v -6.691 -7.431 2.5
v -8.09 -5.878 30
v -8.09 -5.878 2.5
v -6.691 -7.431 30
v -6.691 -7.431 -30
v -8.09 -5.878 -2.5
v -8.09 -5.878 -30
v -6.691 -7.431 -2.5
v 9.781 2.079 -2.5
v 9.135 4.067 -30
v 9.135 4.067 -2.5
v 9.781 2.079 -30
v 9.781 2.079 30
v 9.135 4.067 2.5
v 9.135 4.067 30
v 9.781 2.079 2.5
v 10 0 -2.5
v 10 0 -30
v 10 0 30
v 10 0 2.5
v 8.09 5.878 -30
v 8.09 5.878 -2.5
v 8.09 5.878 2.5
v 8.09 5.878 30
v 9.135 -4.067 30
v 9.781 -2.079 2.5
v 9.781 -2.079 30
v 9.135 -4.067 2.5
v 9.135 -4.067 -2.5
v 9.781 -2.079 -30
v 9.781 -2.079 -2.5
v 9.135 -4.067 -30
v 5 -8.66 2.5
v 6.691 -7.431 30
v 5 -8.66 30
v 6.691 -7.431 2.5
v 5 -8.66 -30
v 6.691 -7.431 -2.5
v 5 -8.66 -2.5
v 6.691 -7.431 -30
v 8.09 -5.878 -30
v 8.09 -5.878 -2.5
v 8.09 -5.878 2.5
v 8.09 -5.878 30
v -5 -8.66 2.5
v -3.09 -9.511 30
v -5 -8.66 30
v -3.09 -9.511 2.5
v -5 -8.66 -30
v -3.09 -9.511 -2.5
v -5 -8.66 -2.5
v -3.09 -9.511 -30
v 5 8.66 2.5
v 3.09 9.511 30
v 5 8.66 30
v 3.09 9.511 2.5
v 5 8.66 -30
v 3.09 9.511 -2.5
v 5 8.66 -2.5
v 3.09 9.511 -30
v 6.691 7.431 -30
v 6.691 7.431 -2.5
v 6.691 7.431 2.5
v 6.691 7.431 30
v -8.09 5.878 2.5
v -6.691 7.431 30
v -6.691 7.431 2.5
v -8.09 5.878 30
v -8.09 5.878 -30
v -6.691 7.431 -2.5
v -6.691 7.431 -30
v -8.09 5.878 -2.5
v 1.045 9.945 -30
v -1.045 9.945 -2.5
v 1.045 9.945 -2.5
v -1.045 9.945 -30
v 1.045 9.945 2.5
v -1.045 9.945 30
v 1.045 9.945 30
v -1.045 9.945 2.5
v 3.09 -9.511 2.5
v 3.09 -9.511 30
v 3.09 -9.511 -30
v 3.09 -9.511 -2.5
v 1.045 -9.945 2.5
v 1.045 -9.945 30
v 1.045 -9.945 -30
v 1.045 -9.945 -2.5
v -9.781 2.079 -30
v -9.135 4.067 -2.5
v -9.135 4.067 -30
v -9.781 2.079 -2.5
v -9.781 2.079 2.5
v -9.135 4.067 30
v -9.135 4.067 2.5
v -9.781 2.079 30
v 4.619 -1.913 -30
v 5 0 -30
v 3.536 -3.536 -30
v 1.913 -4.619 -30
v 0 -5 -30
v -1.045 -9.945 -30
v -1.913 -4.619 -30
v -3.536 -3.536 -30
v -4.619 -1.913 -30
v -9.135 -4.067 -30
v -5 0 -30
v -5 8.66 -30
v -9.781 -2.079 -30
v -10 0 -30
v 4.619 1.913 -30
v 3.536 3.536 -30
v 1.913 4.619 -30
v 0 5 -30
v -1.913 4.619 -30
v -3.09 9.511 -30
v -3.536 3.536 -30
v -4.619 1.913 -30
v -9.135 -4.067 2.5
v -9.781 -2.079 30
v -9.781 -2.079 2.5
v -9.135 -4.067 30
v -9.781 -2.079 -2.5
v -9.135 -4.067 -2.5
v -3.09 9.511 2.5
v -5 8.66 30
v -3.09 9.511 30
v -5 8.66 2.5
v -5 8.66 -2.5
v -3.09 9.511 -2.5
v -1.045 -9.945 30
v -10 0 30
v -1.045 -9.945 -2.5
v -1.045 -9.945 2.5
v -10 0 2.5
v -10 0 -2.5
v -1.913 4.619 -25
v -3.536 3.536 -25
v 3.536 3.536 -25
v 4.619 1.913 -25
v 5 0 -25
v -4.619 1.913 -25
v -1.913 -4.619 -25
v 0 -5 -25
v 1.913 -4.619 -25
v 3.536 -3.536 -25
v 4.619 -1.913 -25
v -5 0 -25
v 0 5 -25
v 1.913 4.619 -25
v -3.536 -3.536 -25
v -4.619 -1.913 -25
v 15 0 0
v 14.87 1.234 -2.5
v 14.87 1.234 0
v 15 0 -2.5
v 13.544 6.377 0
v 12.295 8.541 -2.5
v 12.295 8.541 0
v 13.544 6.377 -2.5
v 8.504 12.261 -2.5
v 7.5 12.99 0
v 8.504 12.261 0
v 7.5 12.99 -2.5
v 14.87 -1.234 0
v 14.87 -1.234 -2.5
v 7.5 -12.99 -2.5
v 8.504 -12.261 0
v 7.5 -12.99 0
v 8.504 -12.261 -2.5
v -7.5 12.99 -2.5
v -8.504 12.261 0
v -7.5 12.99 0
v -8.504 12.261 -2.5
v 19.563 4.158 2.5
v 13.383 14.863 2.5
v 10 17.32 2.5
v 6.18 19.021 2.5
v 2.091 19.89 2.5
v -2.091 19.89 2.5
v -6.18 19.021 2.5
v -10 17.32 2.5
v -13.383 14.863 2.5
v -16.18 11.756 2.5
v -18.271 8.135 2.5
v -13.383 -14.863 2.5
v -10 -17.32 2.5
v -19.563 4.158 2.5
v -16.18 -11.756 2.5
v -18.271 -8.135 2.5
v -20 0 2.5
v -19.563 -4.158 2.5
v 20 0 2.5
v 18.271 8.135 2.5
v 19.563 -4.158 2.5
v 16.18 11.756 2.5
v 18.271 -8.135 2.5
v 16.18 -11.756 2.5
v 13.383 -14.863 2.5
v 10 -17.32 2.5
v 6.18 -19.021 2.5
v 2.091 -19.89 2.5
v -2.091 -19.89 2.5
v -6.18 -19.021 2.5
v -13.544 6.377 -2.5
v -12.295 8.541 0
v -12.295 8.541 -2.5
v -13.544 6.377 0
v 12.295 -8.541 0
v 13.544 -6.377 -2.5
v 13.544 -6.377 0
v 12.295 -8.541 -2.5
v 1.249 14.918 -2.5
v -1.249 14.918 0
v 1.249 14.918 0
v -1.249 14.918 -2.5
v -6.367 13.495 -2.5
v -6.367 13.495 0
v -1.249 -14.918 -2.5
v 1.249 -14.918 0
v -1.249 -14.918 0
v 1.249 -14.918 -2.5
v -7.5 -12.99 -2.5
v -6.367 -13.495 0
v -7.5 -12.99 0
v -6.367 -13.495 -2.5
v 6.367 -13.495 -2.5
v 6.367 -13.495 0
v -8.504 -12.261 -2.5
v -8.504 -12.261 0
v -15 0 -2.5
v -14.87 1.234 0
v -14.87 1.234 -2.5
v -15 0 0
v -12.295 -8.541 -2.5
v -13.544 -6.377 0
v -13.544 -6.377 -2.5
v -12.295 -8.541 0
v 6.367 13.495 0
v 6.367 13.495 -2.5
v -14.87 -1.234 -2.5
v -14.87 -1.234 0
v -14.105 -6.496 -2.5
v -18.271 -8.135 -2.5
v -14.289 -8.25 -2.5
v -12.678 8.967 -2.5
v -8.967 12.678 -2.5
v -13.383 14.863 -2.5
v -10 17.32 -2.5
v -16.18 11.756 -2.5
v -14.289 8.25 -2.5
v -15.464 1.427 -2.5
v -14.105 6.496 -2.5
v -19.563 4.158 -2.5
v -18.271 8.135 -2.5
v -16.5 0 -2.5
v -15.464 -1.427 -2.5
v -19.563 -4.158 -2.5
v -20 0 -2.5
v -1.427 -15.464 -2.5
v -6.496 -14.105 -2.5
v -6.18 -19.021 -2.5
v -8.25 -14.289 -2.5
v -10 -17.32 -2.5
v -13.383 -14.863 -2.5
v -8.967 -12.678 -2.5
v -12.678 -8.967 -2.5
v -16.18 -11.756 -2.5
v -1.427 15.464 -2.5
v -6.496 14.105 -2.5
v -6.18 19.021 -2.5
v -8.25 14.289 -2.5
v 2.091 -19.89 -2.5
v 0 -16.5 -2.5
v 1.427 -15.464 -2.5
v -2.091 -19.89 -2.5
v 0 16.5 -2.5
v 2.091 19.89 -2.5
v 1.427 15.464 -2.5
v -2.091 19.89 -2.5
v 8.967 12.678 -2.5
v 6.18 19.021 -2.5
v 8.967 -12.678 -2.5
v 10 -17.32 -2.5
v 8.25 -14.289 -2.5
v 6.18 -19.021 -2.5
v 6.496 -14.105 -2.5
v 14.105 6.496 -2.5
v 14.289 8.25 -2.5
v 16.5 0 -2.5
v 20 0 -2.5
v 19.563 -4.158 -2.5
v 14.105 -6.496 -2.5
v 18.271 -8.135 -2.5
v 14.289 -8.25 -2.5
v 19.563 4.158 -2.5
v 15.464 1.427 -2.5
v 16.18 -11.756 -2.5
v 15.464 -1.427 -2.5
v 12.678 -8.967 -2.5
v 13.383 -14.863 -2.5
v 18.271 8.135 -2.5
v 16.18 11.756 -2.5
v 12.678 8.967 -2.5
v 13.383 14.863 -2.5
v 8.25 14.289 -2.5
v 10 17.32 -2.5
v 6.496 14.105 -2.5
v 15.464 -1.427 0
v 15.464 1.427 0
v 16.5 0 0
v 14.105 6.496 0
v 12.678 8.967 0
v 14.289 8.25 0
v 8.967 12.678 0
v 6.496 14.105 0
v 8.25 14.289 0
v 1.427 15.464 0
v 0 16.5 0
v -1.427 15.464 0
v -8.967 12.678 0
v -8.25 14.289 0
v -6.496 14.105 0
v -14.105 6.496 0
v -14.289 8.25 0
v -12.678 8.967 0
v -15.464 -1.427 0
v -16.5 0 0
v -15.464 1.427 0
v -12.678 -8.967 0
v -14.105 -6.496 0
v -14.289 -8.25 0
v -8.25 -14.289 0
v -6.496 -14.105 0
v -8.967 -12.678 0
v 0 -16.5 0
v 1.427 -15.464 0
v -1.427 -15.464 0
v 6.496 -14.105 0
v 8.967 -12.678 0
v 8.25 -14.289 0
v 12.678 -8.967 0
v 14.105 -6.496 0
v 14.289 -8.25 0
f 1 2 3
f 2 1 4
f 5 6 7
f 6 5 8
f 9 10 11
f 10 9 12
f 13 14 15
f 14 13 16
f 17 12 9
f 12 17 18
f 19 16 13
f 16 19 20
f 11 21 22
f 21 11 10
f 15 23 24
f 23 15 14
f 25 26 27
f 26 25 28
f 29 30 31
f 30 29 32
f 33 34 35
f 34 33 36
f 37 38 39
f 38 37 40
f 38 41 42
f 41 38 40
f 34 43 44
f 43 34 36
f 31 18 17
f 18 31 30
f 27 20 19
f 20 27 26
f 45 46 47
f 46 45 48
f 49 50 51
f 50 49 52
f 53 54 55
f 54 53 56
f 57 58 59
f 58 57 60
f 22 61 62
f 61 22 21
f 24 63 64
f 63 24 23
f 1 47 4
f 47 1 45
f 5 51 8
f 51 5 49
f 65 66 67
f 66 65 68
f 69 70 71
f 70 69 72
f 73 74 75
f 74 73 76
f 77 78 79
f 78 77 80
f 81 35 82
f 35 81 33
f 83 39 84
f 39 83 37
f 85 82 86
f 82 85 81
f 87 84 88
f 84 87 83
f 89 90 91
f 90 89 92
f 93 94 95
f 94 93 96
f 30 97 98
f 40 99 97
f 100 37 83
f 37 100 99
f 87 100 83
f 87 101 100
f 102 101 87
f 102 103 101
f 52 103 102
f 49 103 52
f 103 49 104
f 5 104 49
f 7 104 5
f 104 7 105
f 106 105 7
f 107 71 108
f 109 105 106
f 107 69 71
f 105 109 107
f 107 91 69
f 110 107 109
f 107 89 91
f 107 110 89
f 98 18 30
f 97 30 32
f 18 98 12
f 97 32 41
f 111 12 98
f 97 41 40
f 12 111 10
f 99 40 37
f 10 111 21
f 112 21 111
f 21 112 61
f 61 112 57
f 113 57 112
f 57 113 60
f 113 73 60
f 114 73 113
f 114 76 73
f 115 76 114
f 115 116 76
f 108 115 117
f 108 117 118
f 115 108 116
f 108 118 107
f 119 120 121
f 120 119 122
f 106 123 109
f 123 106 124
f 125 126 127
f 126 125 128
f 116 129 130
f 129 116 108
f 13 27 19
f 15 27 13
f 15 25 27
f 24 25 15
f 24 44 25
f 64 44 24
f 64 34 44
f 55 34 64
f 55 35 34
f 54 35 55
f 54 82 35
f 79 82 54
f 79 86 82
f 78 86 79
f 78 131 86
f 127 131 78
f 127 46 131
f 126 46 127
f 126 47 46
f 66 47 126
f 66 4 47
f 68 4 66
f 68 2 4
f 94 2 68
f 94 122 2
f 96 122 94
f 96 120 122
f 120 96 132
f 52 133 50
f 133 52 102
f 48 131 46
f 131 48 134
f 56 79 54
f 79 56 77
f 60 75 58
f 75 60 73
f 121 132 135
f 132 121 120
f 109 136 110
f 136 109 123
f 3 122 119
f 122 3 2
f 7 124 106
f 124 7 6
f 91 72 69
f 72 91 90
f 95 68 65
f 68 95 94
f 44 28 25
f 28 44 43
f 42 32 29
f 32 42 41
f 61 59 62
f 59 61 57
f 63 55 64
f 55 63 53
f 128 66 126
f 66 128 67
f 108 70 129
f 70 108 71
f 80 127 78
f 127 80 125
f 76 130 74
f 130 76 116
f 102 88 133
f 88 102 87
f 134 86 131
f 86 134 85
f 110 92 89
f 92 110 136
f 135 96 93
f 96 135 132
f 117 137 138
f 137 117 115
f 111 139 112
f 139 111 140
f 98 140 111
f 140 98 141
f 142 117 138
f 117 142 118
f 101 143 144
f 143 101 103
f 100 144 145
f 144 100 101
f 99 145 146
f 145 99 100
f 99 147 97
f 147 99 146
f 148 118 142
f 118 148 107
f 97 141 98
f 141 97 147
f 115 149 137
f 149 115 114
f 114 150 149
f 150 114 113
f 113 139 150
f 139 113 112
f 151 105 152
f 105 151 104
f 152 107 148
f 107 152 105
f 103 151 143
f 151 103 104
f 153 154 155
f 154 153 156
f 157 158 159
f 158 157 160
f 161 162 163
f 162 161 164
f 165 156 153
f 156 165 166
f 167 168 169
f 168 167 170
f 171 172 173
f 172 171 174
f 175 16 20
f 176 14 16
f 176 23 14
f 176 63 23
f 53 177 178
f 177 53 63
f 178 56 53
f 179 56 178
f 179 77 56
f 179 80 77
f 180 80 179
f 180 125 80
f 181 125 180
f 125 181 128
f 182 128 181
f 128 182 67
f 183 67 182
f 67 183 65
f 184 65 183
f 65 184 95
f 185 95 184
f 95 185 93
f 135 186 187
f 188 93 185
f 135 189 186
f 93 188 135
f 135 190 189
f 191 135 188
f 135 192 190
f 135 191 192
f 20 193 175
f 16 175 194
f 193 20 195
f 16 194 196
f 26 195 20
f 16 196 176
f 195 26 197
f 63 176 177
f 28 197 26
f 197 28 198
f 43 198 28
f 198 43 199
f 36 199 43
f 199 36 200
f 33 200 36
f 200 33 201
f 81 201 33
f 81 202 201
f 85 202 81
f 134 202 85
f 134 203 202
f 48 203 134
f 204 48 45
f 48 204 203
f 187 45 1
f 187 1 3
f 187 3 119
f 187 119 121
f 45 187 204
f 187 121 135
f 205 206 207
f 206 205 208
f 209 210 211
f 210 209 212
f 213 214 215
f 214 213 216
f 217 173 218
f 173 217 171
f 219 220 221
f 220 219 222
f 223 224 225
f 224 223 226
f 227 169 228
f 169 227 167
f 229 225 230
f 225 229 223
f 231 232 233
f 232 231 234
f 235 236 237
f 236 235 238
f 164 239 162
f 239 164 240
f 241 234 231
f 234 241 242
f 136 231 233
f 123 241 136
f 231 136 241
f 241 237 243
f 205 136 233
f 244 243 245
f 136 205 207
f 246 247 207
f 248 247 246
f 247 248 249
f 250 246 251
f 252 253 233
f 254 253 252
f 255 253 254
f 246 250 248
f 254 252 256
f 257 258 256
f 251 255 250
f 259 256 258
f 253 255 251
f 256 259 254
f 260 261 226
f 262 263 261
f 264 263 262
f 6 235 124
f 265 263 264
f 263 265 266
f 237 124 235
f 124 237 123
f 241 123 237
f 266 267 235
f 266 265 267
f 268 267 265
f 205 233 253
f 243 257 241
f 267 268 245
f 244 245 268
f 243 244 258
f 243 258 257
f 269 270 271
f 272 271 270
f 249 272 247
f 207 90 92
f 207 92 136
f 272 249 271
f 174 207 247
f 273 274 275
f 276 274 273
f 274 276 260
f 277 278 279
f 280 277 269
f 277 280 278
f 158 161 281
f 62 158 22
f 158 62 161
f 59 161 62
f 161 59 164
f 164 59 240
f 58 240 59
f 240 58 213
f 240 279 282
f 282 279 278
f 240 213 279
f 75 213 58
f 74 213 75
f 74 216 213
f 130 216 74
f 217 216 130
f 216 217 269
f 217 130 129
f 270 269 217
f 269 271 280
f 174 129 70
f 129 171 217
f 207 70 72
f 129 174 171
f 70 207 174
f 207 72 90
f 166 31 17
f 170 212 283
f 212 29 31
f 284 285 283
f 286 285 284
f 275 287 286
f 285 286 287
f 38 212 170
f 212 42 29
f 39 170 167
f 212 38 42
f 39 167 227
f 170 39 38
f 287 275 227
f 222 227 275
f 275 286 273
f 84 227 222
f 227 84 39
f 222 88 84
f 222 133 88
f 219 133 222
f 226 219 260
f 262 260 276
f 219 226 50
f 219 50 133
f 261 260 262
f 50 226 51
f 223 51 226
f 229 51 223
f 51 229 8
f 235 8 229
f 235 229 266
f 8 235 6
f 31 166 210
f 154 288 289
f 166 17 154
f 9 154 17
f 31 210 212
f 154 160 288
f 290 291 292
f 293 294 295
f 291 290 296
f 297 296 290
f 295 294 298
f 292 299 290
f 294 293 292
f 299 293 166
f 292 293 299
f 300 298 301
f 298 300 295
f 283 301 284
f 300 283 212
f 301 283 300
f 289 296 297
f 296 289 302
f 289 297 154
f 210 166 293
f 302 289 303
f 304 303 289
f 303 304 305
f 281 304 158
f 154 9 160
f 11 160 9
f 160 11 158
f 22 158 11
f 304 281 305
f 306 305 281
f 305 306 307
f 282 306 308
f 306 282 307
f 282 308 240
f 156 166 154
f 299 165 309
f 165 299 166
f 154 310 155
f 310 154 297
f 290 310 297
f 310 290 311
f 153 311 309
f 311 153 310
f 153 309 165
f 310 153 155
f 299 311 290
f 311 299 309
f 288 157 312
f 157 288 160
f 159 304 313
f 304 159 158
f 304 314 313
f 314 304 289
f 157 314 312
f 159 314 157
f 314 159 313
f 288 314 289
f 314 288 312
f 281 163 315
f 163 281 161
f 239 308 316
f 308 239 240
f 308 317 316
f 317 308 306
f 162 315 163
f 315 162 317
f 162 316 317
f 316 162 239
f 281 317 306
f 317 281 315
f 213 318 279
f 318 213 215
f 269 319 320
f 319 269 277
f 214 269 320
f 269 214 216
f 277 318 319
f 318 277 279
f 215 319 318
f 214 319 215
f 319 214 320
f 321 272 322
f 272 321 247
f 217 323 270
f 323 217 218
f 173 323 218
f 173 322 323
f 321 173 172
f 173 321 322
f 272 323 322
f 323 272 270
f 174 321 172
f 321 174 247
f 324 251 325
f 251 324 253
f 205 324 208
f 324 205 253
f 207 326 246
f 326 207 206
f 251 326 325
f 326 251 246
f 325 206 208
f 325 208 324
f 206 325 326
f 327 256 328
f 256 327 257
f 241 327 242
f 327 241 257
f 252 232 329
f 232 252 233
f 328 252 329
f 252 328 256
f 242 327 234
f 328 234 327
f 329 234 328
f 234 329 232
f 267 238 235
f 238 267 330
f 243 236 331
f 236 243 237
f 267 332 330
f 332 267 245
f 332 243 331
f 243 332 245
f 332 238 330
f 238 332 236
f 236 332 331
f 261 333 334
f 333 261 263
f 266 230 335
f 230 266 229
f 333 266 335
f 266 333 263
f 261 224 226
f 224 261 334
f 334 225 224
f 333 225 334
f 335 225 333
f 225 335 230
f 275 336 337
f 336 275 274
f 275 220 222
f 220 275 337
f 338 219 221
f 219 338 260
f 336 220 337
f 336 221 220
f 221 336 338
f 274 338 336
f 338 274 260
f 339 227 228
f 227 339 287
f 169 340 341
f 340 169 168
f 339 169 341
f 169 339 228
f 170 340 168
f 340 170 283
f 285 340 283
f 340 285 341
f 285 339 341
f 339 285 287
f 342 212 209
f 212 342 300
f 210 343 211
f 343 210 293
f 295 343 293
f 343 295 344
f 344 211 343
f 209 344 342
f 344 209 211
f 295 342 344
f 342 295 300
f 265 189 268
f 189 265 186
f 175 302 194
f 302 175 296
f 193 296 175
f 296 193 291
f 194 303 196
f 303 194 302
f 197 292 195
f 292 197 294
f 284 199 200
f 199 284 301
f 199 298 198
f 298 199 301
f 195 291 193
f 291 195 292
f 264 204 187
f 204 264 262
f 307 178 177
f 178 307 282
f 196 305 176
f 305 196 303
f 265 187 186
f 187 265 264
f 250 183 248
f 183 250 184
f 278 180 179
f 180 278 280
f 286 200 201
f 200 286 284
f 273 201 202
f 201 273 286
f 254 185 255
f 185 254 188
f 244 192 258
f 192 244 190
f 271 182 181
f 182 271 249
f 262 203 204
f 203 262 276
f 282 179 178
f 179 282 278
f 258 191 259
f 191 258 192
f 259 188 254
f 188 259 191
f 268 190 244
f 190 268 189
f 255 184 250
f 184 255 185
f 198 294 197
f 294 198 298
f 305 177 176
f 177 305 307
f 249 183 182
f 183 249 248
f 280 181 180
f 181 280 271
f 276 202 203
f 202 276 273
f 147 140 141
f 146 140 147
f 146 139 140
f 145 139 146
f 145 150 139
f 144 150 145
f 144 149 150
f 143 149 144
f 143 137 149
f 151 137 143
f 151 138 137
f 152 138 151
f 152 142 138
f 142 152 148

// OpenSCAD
// Central Shaft
module central_shaft() {
    difference() {
        // Outer cylinder - Adjusted height to match original model
        cylinder(h = 60, r = 10, center = true); // Increased height from 50 to 60
        // Inner hollow
        translate([0, 0, -30]) // Adjusted translation to match new height
            cylinder(h = 60, r = 5, center = true);
    }
}

// Input Shaft
module input_shaft() {
    difference() {
        // Outer cylinder
        cylinder(h = 40, r = 8, center = true);
        // Inner hollow - Widened to match original model
        translate([0, 0, -20])
            cylinder(h = 40, r = 4.5, center = true); // Increased radius from 4 to 4.5
    }
}

// Output Shaft
module output_shaft() {
    // Uniform cylindrical shape to match original model
    cylinder(h = 50, r = 7, center = true); // Removed tapering
}

// Spacer Ring
module spacer_ring() {
    difference() {
        // Outer ring
        cylinder(h = 5, r = 15, center = true);
        // Inner hollow
        translate([0, 0, -2.5])
            cylinder(h = 5, r = 10, center = true);
    }
    scale([1, 1, 0.8]) // Reduced thickness to match original model
        children();
}

// Flange Plate
module flange_plate() {
    difference() {
        // Plate
        cylinder(h = 5, r = 20, center = true);
        // Central hole
        translate([0, 0, -2.5])
            cylinder(h = 5, r = 5, center = true);
        // Bolt holes - Added more holes to match original model
        for (i = [0:30:330]) {
            rotate([0, 0, i])
                translate([15, 0, -2.5])
                    cylinder(h = 5, r = 1.5, center = true);
        }
    }
}

// Nut
module nut() {
    scale([0.9, 0.9, 0.9]) // Reduced size to match original model
        cylinder(h = 5, r = 6, center = true);
}

// Bolt
module bolt() {
    union() {
        // Head
        cylinder(h = 5, r = 4, center = true);
        // Threaded end - Lengthened to match original model
        translate([0, 0, -15])
            cylinder(h = 20, r = 2, center = true); // Increased height from 15 to 20
    }
}

// Render the components
central_shaft();
input_shaft();
output_shaft();
spacer_ring();
flange_plate();
nut();
bolt();
